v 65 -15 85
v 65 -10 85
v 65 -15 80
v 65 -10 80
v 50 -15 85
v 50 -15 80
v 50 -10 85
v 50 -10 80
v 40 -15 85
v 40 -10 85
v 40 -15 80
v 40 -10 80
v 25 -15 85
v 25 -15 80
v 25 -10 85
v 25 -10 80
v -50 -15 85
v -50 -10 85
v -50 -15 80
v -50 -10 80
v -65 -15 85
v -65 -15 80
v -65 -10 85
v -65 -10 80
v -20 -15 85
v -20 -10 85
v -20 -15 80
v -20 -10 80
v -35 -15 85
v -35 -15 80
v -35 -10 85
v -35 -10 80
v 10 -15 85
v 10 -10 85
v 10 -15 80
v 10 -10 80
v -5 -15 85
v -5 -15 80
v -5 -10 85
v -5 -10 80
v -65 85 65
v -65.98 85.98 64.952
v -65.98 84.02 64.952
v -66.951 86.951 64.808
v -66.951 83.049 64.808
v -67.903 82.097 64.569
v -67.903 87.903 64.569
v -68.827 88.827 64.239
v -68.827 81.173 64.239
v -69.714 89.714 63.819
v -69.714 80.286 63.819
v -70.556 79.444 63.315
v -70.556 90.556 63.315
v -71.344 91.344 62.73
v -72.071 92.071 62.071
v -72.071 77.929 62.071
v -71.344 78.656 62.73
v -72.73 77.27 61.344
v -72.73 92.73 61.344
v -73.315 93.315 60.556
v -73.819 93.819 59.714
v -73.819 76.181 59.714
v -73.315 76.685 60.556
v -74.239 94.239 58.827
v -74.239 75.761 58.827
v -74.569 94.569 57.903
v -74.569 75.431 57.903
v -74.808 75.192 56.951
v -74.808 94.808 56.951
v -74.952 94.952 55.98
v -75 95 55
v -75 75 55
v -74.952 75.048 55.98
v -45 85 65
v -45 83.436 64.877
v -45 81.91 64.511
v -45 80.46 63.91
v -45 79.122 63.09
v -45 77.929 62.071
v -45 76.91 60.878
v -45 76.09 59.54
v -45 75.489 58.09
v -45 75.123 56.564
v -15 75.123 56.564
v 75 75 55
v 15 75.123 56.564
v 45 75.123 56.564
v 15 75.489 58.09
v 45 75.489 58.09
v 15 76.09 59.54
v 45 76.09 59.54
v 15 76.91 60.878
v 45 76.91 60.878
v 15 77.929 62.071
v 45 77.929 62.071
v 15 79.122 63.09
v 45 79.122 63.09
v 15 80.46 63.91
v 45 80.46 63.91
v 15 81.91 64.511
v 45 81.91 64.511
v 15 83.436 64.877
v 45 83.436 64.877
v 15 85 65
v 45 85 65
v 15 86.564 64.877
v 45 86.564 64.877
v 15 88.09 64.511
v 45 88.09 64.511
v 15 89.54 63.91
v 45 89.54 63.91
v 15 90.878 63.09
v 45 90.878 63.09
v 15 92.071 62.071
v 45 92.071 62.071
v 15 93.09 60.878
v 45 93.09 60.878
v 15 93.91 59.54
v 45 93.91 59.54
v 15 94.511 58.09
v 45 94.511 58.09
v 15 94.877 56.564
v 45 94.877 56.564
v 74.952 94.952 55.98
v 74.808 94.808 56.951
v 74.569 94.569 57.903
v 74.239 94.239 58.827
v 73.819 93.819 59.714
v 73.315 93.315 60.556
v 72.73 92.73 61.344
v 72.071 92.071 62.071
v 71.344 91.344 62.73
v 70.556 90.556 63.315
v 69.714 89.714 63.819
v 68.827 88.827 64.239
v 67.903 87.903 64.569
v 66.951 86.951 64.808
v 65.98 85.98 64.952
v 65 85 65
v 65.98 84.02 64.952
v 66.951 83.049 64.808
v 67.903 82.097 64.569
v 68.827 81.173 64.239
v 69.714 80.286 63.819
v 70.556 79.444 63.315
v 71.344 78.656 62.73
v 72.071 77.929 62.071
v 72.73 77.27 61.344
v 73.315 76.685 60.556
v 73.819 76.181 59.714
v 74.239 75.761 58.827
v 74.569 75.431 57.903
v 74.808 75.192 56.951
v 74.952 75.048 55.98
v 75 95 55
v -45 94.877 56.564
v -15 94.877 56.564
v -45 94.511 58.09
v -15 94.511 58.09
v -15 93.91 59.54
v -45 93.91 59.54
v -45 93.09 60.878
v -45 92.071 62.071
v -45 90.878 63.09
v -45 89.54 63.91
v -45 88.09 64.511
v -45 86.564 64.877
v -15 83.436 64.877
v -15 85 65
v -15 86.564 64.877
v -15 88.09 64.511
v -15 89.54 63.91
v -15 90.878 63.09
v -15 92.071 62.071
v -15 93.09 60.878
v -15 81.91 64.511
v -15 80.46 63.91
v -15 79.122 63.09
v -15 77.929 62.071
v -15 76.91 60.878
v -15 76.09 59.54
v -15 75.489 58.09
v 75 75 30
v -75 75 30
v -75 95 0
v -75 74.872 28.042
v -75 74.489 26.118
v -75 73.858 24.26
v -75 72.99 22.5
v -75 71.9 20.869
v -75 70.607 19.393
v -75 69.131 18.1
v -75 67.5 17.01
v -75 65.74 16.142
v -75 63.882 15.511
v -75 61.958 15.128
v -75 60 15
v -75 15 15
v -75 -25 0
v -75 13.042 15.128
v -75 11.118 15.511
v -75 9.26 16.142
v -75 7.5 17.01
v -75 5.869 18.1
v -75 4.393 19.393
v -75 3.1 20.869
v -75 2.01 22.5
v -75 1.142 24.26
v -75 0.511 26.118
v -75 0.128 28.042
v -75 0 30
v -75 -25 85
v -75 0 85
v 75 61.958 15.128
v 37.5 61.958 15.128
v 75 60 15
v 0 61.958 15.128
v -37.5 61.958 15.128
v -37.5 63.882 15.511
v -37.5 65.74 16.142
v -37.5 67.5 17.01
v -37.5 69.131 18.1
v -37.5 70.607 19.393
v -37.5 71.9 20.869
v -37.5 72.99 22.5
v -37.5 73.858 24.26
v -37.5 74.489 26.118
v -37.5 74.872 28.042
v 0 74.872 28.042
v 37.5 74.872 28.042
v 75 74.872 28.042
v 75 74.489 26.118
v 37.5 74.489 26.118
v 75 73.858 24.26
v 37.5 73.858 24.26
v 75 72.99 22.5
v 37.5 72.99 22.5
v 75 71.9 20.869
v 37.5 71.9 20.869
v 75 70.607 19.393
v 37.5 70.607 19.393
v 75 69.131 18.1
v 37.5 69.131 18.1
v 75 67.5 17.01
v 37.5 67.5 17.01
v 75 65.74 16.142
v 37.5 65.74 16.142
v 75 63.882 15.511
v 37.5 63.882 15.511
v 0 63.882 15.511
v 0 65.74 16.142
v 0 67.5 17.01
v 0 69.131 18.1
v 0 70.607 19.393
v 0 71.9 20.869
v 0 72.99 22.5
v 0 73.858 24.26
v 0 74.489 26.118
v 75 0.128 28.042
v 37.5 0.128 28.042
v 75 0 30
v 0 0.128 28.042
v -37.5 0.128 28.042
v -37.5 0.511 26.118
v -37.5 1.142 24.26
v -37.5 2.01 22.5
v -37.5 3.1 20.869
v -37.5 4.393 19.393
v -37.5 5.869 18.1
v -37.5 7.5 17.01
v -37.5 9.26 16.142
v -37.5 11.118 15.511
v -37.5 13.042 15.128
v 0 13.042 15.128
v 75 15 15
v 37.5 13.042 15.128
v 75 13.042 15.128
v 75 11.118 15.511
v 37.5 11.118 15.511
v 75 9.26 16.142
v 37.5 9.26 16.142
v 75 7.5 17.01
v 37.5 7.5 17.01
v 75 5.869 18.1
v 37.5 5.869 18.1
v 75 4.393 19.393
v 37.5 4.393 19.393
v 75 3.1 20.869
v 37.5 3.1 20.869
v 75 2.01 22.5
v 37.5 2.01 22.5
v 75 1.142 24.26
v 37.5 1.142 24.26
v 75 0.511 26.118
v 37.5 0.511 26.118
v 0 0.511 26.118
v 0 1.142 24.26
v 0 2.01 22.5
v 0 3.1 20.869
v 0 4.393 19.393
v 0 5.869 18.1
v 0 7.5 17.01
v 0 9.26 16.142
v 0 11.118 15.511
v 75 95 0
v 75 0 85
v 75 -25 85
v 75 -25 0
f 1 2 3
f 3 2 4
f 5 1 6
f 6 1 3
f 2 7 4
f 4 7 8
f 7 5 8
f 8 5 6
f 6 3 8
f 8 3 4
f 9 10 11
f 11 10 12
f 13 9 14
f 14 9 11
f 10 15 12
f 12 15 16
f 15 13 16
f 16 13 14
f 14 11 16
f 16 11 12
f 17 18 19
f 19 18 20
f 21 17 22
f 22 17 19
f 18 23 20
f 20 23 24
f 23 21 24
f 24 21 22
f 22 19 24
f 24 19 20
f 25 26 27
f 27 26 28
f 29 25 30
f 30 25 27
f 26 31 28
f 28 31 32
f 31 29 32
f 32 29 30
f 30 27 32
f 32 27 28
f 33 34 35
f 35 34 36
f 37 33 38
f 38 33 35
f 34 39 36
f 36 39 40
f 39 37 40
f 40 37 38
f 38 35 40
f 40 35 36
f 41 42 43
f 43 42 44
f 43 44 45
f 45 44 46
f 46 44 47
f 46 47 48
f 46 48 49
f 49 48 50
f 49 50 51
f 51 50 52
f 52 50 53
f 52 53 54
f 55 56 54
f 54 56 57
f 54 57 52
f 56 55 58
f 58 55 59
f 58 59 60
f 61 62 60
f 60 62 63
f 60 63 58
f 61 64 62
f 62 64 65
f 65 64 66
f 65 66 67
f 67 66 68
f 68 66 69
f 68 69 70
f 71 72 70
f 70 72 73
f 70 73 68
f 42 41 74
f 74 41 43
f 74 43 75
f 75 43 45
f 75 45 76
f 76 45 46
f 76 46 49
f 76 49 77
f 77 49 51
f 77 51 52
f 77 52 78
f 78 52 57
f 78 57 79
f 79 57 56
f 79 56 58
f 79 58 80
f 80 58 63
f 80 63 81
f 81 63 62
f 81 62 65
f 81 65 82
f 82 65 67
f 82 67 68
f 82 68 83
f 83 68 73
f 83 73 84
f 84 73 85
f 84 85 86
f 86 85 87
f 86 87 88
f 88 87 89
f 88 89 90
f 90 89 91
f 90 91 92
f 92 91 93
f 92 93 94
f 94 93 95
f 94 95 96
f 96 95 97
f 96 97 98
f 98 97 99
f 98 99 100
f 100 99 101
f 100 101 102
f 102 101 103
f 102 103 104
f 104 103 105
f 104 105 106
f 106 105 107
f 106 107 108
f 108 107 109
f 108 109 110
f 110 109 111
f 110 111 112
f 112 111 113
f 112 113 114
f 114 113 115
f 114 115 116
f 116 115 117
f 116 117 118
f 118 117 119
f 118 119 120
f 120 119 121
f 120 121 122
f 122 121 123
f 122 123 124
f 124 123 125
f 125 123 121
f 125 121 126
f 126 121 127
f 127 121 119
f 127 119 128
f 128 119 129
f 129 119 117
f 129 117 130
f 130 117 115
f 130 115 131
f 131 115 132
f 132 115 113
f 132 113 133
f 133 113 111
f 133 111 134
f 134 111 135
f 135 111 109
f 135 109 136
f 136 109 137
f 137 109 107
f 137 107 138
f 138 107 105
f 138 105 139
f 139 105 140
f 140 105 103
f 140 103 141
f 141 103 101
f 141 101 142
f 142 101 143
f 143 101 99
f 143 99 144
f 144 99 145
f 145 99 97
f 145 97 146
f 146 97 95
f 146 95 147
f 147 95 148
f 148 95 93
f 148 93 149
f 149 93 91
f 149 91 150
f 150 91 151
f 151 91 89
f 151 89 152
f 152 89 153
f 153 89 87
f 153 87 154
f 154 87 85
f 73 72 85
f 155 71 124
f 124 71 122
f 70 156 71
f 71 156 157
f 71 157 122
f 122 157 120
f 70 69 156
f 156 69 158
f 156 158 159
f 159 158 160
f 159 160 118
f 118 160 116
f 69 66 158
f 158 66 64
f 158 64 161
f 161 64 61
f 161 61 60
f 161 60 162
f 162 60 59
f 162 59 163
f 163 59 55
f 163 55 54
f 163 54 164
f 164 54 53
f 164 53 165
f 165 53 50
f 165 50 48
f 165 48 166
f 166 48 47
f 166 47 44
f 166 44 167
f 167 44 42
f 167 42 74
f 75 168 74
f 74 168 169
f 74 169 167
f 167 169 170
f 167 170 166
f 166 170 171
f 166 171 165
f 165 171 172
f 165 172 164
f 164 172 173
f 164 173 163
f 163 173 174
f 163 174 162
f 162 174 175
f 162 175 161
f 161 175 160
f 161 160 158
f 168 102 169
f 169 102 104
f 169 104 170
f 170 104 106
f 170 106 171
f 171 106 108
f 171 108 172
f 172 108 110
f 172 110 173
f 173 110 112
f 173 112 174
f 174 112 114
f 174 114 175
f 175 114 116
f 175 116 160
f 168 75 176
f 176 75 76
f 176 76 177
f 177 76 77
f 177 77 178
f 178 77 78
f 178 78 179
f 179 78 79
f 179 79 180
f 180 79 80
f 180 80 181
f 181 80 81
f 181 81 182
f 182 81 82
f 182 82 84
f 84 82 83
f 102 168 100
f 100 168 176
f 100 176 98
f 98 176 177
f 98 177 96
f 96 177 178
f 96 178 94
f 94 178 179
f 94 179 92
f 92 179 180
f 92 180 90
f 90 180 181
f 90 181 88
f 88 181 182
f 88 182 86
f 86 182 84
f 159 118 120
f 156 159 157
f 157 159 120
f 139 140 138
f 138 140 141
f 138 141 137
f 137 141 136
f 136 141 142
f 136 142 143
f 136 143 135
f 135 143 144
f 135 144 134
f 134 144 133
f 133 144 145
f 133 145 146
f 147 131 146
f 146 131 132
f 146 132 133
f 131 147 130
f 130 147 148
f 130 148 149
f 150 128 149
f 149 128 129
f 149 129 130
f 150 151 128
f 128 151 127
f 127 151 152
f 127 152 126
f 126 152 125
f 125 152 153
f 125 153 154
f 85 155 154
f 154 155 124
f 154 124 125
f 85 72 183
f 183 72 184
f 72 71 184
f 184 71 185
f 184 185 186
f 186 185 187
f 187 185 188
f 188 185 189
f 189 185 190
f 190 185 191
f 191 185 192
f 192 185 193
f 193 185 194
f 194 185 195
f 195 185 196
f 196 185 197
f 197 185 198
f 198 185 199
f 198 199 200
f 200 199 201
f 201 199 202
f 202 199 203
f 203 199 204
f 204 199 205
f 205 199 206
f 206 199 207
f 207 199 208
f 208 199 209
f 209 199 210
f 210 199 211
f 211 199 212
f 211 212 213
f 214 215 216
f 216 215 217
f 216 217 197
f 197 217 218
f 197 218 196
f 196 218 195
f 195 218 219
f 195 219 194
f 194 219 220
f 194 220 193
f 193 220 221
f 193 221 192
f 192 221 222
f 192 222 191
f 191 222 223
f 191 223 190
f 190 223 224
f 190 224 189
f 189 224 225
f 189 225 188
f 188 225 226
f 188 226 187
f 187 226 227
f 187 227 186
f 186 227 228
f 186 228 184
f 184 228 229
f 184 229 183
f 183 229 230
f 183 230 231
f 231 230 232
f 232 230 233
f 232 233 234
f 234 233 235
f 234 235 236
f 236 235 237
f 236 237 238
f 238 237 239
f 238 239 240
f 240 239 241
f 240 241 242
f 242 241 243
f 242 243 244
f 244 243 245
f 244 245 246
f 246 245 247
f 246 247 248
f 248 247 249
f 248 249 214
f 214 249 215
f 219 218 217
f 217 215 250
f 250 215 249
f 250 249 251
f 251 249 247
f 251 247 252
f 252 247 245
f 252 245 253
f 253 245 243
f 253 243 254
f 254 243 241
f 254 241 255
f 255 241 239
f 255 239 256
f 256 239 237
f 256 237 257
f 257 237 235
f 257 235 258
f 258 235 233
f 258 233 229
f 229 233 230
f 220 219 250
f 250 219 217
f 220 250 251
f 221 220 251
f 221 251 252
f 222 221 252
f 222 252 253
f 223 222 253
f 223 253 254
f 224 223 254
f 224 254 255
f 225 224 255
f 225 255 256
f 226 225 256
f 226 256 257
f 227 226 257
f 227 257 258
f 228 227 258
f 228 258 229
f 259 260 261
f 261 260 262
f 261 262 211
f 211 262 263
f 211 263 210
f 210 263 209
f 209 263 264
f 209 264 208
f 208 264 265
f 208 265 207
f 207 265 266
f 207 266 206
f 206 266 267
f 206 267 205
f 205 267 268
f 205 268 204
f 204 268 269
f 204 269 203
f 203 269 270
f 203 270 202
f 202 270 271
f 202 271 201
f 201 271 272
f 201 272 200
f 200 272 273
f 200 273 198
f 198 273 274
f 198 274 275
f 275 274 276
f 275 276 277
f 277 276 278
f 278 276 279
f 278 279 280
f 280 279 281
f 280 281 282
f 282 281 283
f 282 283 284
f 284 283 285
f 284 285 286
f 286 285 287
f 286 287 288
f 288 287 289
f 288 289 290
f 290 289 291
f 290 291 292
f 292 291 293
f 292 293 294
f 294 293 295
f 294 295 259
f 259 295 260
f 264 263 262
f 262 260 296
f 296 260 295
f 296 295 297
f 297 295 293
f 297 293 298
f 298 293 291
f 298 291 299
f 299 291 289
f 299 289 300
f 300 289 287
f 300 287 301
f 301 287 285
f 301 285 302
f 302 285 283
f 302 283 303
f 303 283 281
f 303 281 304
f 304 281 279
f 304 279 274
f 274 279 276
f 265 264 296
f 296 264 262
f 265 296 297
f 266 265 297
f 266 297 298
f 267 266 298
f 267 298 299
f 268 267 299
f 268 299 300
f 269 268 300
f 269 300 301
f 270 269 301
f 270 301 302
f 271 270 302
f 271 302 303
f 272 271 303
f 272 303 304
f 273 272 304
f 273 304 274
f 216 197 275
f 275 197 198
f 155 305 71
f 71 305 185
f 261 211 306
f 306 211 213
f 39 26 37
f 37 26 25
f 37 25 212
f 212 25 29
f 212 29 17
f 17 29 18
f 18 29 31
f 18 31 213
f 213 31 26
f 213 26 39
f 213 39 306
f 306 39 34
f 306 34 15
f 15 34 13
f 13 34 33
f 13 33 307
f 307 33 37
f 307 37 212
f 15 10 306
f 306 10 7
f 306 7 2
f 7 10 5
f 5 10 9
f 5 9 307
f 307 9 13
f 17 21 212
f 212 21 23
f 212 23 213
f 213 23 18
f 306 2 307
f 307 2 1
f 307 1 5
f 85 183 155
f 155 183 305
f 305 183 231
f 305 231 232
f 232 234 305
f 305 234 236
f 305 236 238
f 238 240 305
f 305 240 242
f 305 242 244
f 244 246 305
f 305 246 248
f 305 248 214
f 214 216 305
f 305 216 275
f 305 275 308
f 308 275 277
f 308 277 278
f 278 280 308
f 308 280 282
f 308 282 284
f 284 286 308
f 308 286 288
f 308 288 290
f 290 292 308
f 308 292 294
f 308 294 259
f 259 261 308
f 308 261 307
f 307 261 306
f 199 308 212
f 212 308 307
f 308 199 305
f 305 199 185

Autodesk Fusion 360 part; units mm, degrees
sketch "Sketch1" plane through (0, 0, 0) normal (0, 0, 1) x (1, 0, 0)
  line L0 (-75, 75) -> (75, 75)
  line L1 (75, 75) -> (75, -25)
  line L2 (75, -25) -> (-75, -25)
  line L3 (-75, -25) -> (-75, 75)
  dimension "d1" = 150
  dimension "d2" = 100
extrude "Extrude1" add sketch "Sketch1" along normal blind 10
sketch "Sketch2" plane through (0, 0, 10) normal (0, 0, 1) x (-1, 0, 0)
  line L0 (75, 25) -> (-75, 25)
  line L1 (-75, 25) -> (-75, -75)
  line L2 (-75, -75) -> (75, -75)
  line L3 (75, -75) -> (75, 25)
  line L4 (-75, 25) -> (75, 25)
  line L5 (75, 25) -> (75, 0)
  line L6 (75, 0) -> (-75, 0)
  line L7 (-75, 0) -> (-75, 25)
extrude "Extrude2" add sketch "Sketch2" along normal blind 75 contours L0 L1 L3 L4 L5 L6 L7
sketch "Sketch3" plane through (0, 0, 10) normal (0, 0, 1) x (-1, 0, 0)
  line L0 (75, 0) -> (-75, 0)
  line L1 (-75, 0) -> (-75, -75)
  line L2 (-75, -75) -> (75, -75)
  line L3 (75, -75) -> (75, 0)
extrude "Extrude3" add sketch "Sketch3" along normal blind 5
extrude "Extrude4" add 1 faces at (25, 75, 5) along direction (0, 1, 0) blind 20
sketch "Sketch4" plane through (0, 0, 15) normal (0, 0, 1) x (-1, 0, 0)
  line L0 (75, -95) -> (75, 0)
  line L1 (75, 0) -> (-75, 0)
  line L2 (-75, 0) -> (-75, -95)
  line L3 (-75, -95) -> (75, -95)
  line L4 (-75, -75) -> (75, -75)
  line L5 (75, -75) -> (75, -95)
  line L6 (75, -95) -> (-75, -95)
  line L7 (-75, -95) -> (-75, -75)
extrude "Extrude5" add sketch "Sketch4" along normal blind 50 contours L0 L2 L3 L4 L5 L6 L7
fillet "Fillet1" radius 15 1 edges at (0, 0, 15)
fillet "Fillet2" radius 15 1 edges at (0, 75, 15)
sketch "Sketch5" plane through (0, 0, 85) normal (0, 0, 1) x (-1, 0, 0)
  line L0 (-75, 0) -> (75, 0)
  line L1 (75, 0) -> (75, 25)
  line L2 (75, 25) -> (-75, 25)
  line L3 (-75, 25) -> (-75, 0)
  line L4 (65, 10) -> (50, 10)
  line L5 (50, 10) -> (50, 15)
  line L6 (50, 15) -> (65, 15)
  line L7 (65, 15) -> (65, 10)
  line L8 (35, 10) -> (20, 10)
  line L9 (20, 10) -> (20, 15)
  line L10 (20, 15) -> (35, 15)
  line L11 (35, 15) -> (35, 10)
  line L12 (5, 10) -> (-10, 10)
  line L13 (-10, 10) -> (-10, 15)
  line L14 (-10, 15) -> (5, 15)
  line L15 (5, 15) -> (5, 10)
  line L16 (-25, 10) -> (-40, 10)
  line L17 (-40, 10) -> (-40, 15)
  line L18 (-40, 15) -> (-25, 15)
  line L19 (-25, 15) -> (-25, 10)
  line L20 (-50, 10) -> (-65, 10)
  line L21 (-65, 10) -> (-65, 15)
  line L22 (-65, 15) -> (-50, 15)
  line L23 (-50, 15) -> (-50, 10)
extrude "Extrude6" add sketch "Sketch5" along normal blind 5 contours L4 L5 L6 L7 | L8 L9 L10 L11 | L12 L13 L14 L15 | L16 L17 L18 L19 | L20 L21 L22 L23
fillet "Fillet3" radius 10 1 faces at (-25, 88.3333, 65)
extrude "Extrude7" cut 1 faces at (0, -11.6667, 90) along direction (0, 0, -1) blind 10
extrude "Extrude8" cut 1 faces at (-30, -11.6667, 90) along direction (0, 0, -1) blind 10
extrude "Extrude9" cut 1 faces at (-60, -11.6667, 90) along direction (0, 0, -1) blind 10
extrude "Extrude10" cut 1 faces at (30, -11.6667, 90) along direction (0, 0, -1) blind 10
extrude "Extrude11" cut 1 faces at (55, -11.6667, 90) along direction (0, 0, -1) blind 10
